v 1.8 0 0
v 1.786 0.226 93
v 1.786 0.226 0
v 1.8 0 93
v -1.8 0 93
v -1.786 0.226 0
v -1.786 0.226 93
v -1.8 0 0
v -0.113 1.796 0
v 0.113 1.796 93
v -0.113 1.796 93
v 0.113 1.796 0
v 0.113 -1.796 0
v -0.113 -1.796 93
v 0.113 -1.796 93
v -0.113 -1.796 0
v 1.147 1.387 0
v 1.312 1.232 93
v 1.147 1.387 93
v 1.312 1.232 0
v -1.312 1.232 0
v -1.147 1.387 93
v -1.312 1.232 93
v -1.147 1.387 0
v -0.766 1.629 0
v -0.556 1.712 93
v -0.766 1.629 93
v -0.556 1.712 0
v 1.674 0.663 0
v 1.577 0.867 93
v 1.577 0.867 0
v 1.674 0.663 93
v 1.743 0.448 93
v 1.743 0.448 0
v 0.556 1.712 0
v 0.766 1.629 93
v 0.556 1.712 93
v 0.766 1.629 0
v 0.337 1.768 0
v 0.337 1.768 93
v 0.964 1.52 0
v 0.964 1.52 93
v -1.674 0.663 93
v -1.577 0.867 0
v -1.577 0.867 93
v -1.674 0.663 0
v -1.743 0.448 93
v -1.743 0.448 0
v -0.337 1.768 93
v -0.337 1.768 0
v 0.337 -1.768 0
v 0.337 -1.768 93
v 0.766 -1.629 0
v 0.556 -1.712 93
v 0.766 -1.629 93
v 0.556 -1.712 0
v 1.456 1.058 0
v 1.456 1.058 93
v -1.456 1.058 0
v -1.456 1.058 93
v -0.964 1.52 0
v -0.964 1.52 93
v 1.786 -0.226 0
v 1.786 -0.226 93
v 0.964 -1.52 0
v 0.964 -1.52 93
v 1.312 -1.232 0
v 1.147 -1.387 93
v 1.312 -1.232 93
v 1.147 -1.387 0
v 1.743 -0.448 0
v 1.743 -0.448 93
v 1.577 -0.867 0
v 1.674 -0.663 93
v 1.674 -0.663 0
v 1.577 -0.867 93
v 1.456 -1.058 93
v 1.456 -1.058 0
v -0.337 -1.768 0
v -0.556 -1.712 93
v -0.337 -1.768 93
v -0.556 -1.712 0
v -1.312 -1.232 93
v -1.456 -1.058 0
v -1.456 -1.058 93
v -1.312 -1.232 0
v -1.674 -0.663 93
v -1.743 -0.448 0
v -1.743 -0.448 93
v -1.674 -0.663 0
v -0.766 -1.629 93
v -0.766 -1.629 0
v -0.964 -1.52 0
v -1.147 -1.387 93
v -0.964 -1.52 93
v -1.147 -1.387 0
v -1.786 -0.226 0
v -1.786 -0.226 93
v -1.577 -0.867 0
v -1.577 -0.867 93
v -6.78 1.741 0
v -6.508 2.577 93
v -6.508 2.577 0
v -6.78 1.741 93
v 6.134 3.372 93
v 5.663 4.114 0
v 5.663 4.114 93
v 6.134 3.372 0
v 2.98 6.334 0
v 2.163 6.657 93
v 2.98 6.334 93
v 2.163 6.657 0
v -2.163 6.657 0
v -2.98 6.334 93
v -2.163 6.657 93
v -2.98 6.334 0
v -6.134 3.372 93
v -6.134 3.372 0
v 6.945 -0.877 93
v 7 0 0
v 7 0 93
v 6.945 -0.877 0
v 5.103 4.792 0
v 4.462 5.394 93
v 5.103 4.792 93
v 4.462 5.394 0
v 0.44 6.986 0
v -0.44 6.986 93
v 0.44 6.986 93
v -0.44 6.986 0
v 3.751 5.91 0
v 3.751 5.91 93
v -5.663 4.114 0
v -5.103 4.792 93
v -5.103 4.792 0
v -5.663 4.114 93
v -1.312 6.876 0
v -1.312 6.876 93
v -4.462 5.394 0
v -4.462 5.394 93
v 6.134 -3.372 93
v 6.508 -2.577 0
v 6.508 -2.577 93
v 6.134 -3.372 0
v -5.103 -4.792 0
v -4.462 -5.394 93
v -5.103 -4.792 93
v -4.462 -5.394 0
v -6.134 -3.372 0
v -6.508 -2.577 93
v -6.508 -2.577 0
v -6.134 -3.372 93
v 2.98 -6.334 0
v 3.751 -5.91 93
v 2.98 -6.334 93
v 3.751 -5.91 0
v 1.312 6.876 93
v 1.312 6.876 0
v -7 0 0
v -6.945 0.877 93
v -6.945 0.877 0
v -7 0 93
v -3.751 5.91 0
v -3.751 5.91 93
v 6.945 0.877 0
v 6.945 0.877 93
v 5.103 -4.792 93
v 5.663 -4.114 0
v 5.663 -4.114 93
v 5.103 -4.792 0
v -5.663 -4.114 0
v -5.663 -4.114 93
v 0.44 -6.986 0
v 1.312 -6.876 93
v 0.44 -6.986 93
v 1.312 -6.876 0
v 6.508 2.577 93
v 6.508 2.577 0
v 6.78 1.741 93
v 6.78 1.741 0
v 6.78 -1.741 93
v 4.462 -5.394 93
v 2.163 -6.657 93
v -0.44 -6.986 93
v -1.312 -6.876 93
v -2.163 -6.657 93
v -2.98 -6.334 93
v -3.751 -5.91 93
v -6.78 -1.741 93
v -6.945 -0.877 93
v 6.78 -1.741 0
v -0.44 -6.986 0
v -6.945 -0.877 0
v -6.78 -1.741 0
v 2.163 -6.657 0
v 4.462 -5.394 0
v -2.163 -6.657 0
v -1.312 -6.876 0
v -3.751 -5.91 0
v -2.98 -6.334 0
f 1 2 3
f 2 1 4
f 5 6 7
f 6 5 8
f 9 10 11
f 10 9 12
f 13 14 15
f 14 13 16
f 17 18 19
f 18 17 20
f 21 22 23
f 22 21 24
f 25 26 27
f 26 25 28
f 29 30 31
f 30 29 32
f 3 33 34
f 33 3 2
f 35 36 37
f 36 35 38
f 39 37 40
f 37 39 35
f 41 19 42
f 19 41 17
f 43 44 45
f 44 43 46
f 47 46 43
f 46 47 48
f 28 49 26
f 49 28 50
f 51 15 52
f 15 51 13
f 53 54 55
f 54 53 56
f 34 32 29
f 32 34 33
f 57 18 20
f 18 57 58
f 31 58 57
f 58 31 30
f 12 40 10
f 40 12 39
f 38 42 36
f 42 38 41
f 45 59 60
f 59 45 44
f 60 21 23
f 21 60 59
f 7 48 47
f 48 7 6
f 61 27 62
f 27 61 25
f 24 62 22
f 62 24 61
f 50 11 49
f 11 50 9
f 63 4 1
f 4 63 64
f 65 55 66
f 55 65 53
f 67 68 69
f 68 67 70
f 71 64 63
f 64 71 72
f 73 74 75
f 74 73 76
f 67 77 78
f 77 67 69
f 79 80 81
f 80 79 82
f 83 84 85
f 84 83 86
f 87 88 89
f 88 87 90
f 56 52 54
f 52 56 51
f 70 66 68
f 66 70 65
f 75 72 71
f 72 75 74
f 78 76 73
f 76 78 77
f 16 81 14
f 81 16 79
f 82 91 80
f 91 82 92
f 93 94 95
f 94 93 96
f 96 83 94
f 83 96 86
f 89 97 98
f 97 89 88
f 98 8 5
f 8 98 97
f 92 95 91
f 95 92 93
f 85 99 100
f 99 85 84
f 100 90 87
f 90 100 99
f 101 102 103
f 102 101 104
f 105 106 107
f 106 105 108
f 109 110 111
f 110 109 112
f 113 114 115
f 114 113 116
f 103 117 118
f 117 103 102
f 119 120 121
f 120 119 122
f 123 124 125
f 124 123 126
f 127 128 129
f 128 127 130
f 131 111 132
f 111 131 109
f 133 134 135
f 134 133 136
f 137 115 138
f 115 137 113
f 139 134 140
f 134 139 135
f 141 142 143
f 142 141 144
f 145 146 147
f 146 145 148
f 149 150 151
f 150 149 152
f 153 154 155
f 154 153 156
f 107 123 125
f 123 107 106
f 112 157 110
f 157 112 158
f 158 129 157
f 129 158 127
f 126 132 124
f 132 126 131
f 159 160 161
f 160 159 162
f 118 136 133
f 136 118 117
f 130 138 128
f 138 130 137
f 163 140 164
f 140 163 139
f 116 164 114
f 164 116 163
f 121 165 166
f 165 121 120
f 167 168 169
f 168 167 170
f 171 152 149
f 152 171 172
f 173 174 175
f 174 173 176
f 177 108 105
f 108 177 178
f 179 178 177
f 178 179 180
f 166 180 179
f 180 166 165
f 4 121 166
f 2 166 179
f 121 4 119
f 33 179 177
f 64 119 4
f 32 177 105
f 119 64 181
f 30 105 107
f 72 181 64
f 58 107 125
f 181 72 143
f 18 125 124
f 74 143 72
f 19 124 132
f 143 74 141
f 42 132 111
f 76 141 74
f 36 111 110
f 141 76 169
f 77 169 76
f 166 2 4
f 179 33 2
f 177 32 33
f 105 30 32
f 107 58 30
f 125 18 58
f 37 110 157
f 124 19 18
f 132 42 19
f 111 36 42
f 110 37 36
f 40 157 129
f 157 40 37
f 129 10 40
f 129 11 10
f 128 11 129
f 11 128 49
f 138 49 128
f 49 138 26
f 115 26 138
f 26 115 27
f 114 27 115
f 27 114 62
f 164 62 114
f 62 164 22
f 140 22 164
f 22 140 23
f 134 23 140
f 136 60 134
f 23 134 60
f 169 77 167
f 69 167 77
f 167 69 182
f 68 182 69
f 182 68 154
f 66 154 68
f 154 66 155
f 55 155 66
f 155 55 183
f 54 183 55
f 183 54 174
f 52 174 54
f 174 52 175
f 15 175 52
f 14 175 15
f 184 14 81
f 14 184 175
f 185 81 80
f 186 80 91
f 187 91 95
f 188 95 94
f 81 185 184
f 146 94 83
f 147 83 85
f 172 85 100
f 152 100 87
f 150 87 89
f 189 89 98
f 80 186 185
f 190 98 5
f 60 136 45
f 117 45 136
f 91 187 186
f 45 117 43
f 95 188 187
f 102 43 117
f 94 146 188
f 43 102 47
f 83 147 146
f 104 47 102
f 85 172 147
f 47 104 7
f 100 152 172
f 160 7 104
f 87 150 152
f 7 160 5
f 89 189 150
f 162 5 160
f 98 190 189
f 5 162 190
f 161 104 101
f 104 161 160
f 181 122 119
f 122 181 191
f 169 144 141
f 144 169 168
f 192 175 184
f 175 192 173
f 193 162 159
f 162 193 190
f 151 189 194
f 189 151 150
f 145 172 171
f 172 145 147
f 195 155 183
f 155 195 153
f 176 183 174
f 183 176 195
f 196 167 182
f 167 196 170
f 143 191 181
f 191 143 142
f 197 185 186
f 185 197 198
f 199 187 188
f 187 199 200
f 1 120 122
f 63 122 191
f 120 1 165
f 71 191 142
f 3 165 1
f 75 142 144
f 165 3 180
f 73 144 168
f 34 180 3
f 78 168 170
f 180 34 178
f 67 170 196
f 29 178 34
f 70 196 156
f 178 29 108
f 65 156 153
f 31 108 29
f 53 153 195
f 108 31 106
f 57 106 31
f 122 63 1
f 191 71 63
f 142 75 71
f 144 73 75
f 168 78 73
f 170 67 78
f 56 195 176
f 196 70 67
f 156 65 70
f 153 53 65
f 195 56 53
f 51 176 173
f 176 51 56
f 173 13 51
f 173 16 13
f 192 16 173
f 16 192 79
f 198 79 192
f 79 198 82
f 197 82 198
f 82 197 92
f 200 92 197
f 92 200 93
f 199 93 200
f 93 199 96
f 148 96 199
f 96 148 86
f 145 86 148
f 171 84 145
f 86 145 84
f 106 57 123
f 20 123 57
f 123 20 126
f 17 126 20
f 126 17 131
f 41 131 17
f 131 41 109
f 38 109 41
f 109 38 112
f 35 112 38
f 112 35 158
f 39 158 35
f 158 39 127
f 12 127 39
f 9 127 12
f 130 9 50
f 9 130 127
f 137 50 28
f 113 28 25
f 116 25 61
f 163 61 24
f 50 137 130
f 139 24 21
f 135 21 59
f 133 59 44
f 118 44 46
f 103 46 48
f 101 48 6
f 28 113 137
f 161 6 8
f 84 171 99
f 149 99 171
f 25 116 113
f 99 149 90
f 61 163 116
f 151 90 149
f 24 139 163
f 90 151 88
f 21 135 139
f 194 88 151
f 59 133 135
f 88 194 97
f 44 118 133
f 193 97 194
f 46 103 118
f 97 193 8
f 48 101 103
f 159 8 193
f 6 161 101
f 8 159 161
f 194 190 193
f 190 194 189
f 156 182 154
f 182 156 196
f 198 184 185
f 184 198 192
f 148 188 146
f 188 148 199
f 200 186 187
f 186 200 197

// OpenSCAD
$fn = 50;


difference() {
	union() {
		cylinder(h = 93, r = 7.0000000000);
	}
	union() {
		translate(v = [0.0000000000, 0.0000000000, -100.0000000000]) {
			cylinder(h = 200, r = 1.8000000000);
		}
		cylinder(h = 93, r = 1.8000000000);
		cylinder(h = 93, r = 1.8000000000);
		cylinder(h = 93, r = 1.8000000000);
	}
}
